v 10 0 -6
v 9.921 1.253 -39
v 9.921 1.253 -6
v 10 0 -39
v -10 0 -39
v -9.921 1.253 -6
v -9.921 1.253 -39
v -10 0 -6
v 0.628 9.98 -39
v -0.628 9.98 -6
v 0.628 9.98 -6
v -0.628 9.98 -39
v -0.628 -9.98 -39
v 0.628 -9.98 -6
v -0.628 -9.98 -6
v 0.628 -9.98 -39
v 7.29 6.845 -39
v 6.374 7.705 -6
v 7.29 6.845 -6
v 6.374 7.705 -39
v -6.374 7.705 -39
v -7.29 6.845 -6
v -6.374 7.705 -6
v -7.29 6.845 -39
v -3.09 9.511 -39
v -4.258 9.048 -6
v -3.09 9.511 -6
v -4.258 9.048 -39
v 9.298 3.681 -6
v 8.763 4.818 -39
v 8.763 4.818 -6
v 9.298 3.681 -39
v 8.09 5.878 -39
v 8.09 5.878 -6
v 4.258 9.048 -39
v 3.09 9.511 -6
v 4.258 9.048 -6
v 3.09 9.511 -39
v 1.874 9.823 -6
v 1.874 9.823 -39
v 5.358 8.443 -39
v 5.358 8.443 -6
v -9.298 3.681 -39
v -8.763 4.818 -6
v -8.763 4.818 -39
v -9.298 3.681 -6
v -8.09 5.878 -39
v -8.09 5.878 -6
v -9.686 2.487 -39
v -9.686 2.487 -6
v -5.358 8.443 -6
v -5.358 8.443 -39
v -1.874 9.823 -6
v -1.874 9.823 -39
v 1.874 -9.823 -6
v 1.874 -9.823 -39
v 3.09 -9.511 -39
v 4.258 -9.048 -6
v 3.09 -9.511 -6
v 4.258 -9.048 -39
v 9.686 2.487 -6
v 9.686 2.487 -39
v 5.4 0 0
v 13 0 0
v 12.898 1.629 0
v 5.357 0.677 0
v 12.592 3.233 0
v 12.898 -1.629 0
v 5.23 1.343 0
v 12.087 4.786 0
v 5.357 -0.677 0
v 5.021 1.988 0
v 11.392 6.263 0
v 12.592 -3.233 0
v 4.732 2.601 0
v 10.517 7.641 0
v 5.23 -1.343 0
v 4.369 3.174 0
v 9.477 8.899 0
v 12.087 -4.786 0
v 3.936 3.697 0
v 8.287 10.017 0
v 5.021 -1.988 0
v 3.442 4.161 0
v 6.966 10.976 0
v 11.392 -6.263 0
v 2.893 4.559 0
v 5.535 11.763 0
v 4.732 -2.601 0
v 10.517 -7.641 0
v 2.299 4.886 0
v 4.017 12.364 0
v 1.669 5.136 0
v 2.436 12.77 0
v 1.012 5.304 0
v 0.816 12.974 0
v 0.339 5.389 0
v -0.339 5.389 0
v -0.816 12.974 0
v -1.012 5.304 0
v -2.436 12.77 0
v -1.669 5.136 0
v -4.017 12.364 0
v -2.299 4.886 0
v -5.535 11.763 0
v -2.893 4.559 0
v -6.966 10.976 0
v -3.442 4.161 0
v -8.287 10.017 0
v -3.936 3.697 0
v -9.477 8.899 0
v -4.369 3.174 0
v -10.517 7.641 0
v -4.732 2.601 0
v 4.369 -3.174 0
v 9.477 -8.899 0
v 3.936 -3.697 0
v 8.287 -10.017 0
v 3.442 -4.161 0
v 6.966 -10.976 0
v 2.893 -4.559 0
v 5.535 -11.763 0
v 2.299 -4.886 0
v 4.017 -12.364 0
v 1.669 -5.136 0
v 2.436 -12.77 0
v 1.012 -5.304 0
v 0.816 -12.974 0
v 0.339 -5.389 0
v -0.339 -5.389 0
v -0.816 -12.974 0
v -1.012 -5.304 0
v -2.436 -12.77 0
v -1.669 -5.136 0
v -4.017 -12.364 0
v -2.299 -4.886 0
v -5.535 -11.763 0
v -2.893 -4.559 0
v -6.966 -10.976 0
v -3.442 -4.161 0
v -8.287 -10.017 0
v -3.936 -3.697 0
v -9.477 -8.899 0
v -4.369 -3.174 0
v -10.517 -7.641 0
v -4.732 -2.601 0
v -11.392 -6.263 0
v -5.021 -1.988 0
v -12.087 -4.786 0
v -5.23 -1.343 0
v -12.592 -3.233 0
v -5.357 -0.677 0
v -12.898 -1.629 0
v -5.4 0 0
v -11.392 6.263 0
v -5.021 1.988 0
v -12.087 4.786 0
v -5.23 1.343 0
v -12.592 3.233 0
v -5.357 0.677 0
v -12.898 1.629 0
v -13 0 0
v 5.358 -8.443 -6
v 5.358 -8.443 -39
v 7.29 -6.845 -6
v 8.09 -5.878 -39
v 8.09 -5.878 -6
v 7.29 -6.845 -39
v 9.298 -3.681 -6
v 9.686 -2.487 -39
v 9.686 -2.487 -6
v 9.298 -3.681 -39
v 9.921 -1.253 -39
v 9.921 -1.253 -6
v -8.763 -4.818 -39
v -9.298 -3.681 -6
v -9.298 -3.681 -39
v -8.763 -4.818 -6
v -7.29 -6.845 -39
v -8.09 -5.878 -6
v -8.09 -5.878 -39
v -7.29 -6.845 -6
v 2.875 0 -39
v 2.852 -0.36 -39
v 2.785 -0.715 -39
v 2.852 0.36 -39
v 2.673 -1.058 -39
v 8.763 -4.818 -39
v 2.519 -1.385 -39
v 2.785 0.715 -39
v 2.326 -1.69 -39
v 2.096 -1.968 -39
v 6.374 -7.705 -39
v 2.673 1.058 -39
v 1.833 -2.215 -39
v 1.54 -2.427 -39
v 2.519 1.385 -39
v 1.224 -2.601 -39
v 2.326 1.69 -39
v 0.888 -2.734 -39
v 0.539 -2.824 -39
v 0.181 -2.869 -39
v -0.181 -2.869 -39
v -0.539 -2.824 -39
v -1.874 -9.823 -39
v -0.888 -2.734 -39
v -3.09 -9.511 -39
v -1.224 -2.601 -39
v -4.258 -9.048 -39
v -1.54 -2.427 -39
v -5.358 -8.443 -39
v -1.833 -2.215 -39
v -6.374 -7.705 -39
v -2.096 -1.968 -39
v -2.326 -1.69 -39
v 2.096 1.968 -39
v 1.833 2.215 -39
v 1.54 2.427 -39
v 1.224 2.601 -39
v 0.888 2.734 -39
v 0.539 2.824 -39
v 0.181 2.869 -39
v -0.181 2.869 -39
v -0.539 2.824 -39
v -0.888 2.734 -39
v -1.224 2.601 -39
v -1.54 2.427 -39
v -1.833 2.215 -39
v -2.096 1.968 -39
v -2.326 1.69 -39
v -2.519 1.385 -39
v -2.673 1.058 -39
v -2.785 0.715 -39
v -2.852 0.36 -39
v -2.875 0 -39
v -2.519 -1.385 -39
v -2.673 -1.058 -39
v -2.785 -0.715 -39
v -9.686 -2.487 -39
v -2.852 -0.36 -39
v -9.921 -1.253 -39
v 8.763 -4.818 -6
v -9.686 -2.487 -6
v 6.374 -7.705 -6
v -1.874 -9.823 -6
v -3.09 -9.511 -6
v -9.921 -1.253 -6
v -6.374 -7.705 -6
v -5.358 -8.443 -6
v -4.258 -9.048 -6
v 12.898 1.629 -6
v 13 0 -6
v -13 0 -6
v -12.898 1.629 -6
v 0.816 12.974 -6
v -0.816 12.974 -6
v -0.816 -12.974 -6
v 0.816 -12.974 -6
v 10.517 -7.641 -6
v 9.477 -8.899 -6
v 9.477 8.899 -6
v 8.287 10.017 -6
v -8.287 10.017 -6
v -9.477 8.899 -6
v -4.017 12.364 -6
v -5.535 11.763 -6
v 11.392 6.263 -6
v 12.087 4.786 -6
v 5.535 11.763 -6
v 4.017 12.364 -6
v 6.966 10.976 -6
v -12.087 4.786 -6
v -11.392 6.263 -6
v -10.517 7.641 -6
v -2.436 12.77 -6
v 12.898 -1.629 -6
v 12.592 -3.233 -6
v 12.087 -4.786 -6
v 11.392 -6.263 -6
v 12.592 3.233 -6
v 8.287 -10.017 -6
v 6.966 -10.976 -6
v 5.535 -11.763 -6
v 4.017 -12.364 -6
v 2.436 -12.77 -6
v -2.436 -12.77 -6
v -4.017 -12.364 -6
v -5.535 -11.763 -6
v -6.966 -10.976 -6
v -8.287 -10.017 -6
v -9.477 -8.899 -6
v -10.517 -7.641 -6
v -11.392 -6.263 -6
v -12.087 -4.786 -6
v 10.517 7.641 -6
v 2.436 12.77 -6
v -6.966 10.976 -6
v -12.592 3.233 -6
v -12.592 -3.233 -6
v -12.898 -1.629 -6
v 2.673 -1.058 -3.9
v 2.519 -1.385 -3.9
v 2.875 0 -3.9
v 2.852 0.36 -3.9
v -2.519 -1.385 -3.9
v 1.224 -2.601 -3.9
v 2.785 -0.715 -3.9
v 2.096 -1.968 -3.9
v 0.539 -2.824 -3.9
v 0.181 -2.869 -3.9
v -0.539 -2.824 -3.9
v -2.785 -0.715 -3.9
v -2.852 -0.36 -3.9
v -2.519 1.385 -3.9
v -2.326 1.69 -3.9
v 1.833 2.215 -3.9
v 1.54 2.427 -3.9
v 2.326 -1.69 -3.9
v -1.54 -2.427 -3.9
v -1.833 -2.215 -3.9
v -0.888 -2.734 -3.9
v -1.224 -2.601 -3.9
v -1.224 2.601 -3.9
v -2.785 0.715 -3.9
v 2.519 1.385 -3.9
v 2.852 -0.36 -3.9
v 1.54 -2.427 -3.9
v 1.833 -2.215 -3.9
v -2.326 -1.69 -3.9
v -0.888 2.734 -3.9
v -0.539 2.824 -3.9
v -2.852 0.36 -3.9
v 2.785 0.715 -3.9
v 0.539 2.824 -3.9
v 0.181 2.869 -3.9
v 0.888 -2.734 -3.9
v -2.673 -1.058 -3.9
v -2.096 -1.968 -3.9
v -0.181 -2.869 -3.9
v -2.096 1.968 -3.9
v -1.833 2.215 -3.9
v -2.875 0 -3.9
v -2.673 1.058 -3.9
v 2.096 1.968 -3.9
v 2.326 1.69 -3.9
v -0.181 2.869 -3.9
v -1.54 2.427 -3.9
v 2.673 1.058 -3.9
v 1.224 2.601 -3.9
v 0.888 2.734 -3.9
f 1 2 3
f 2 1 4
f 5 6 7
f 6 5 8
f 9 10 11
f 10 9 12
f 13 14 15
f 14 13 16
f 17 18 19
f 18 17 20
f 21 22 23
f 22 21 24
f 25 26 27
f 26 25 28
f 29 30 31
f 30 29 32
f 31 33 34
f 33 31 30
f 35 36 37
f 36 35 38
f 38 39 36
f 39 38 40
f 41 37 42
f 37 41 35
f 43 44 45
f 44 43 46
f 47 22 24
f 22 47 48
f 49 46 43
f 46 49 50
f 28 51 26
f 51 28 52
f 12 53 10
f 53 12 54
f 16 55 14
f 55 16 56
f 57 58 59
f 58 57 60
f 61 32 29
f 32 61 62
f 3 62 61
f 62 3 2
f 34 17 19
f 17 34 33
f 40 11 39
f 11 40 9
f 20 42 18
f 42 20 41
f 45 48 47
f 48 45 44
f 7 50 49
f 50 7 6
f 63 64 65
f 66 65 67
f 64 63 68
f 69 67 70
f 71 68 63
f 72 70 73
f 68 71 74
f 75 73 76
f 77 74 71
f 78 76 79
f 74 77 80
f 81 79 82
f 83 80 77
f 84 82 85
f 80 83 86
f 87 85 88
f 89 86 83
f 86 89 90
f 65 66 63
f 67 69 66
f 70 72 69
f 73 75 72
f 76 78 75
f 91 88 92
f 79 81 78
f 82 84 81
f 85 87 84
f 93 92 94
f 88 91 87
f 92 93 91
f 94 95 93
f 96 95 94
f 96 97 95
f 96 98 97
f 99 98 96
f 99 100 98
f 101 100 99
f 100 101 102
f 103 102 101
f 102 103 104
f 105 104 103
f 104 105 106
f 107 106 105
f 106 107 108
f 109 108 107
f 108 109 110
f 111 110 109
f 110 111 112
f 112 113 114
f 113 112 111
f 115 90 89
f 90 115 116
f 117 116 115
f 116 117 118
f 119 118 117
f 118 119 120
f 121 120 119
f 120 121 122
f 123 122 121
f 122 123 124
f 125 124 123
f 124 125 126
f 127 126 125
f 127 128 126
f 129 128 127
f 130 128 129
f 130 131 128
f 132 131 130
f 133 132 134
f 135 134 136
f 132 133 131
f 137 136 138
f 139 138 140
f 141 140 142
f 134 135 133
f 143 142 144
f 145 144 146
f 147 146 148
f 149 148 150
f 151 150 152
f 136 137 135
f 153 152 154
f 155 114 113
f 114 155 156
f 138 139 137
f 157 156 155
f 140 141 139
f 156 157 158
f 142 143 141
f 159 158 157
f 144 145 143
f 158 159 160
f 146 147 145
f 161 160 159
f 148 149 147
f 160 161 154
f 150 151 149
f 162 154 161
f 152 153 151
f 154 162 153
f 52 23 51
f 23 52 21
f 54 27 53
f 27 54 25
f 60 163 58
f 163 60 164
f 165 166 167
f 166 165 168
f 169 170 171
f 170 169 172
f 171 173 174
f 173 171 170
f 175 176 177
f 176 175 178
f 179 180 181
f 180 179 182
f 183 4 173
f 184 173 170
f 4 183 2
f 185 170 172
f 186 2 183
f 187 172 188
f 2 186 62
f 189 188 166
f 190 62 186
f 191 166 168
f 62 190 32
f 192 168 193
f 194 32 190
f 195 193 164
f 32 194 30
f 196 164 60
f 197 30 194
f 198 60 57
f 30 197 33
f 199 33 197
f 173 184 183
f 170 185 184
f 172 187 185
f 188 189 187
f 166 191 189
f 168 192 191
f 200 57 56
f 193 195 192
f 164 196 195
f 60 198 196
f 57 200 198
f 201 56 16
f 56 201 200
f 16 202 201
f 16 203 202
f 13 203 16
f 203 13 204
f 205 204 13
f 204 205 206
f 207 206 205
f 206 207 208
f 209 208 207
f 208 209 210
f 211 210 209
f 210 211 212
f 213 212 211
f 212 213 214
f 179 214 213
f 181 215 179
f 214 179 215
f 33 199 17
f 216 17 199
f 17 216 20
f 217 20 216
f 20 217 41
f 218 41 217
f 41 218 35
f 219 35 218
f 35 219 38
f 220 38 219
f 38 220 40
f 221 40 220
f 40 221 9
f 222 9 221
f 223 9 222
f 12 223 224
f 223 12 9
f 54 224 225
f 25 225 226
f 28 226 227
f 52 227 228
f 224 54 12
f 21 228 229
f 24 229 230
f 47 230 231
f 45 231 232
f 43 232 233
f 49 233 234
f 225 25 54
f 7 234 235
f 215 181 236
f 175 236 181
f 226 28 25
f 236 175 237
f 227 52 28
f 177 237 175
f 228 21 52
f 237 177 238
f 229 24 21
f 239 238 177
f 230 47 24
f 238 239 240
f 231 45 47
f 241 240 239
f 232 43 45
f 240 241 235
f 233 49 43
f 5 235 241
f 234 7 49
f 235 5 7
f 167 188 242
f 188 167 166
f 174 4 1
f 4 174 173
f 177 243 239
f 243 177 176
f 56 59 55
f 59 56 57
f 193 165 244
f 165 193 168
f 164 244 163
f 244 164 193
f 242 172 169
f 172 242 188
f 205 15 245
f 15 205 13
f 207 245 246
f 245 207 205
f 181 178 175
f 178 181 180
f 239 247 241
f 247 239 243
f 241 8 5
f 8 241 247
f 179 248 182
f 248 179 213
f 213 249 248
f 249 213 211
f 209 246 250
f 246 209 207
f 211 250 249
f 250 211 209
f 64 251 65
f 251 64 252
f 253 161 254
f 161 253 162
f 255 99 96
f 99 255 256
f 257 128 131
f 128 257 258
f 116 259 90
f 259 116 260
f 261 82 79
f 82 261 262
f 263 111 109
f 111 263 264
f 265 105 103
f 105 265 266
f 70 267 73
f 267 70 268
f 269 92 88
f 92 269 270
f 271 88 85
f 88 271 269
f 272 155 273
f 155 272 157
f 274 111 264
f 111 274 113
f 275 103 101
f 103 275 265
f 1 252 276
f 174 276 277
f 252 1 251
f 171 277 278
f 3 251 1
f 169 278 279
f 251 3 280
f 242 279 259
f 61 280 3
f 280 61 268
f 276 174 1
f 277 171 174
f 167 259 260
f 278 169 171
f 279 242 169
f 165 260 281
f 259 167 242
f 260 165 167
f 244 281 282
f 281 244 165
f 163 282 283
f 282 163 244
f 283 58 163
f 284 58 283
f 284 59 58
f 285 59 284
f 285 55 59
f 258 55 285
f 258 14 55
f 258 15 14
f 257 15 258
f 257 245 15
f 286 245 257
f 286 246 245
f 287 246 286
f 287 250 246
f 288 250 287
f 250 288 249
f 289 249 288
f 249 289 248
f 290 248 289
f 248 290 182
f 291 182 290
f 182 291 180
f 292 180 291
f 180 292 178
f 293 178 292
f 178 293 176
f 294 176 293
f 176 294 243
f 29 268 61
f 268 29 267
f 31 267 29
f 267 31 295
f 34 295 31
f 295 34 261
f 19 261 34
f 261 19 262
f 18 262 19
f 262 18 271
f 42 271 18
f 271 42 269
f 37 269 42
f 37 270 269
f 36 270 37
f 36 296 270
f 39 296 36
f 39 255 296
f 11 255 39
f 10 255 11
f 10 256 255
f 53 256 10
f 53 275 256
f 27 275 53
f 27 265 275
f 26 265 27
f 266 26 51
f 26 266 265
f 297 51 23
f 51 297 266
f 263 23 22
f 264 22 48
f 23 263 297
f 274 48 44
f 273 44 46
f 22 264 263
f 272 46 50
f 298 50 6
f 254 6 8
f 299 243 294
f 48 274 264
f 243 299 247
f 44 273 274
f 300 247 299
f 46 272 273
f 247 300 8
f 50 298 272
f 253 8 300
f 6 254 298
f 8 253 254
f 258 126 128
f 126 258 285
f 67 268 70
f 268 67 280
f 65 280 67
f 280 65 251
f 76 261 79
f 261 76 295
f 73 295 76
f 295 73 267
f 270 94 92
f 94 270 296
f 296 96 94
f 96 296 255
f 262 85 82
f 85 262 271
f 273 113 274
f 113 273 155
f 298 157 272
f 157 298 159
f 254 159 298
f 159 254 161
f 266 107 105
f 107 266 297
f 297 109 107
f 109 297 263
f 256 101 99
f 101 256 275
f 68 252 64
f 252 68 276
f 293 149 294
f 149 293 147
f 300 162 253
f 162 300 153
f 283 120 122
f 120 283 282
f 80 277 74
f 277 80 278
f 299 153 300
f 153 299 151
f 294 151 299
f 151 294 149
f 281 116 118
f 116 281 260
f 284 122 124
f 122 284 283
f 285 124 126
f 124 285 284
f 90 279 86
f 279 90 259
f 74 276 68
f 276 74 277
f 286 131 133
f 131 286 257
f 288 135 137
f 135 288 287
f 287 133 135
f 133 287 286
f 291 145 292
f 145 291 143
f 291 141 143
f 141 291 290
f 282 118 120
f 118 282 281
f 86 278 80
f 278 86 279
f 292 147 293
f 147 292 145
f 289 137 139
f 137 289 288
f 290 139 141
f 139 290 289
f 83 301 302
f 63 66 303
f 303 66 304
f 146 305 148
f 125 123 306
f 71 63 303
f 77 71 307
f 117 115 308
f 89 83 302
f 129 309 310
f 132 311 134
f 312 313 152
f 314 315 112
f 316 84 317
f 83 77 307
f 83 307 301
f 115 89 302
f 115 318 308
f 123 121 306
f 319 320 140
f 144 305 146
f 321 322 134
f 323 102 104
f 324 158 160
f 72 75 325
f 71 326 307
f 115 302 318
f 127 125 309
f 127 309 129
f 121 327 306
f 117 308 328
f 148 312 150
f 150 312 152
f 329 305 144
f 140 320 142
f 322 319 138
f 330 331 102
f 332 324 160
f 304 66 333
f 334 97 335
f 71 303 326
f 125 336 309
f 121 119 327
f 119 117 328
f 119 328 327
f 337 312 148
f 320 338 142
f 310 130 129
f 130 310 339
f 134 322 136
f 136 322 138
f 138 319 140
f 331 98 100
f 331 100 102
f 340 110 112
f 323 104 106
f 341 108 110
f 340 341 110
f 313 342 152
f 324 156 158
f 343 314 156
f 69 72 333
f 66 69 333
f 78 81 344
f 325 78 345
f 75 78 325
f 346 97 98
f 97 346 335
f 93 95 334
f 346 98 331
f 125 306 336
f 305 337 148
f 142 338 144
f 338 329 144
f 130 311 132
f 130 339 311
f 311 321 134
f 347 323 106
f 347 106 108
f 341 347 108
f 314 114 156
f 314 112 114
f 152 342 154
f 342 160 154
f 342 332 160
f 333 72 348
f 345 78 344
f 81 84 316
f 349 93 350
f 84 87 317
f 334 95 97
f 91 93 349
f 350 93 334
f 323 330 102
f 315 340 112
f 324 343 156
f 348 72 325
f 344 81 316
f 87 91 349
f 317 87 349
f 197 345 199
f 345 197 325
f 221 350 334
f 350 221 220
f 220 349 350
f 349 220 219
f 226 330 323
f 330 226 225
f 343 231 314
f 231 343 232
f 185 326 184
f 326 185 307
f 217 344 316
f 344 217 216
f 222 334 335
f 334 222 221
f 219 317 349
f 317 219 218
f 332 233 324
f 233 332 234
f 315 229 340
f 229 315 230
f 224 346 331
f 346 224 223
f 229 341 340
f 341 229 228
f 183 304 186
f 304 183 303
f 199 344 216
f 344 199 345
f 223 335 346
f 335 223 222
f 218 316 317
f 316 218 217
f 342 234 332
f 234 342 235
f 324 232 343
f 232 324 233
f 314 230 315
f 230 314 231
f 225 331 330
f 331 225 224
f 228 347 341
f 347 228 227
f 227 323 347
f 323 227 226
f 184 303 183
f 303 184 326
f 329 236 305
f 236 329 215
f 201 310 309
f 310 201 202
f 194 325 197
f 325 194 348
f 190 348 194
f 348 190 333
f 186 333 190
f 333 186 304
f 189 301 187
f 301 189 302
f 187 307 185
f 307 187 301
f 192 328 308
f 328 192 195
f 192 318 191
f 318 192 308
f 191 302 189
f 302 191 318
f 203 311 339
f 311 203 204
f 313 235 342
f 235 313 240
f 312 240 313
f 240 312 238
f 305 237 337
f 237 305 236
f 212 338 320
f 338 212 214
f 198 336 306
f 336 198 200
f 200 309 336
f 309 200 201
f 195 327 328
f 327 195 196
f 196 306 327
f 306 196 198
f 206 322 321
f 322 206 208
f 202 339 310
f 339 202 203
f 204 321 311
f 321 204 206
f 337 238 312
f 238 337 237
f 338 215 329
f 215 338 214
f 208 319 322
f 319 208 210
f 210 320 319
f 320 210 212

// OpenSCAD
$fn = 50;


difference() {
	union() {
		translate(v = [0, 0, -39.0000000000]) {
			cylinder(h = 39, r = 10.0000000000);
		}
		translate(v = [0, 0, -6.0000000000]) {
			cylinder(h = 6, r = 13.0000000000);
		}
	}
	union() {
		translate(v = [0, 0, 0]) {
			rotate(a = [0, 0, 0]) {
				difference() {
					union() {
						#translate(v = [0, 0, -39.0000000000]) {
							cylinder(h = 39, r = 2.6000000000);
						}
						#translate(v = [0, 0, -3.9000000000]) {
							cylinder(h = 3.9000000000, r = 10.0000000000, r1 = 2.8750000000, r2 = 5.4000000000);
						}
						#translate(v = [0, 0, -39.0000000000]) {
							cylinder(h = 39, r = 2.8750000000);
						}
						#translate(v = [0, 0, -39.0000000000]) {
							cylinder(h = 39, r = 2.6000000000);
						}
					}
					union();
				}
			}
		}
	}
}
